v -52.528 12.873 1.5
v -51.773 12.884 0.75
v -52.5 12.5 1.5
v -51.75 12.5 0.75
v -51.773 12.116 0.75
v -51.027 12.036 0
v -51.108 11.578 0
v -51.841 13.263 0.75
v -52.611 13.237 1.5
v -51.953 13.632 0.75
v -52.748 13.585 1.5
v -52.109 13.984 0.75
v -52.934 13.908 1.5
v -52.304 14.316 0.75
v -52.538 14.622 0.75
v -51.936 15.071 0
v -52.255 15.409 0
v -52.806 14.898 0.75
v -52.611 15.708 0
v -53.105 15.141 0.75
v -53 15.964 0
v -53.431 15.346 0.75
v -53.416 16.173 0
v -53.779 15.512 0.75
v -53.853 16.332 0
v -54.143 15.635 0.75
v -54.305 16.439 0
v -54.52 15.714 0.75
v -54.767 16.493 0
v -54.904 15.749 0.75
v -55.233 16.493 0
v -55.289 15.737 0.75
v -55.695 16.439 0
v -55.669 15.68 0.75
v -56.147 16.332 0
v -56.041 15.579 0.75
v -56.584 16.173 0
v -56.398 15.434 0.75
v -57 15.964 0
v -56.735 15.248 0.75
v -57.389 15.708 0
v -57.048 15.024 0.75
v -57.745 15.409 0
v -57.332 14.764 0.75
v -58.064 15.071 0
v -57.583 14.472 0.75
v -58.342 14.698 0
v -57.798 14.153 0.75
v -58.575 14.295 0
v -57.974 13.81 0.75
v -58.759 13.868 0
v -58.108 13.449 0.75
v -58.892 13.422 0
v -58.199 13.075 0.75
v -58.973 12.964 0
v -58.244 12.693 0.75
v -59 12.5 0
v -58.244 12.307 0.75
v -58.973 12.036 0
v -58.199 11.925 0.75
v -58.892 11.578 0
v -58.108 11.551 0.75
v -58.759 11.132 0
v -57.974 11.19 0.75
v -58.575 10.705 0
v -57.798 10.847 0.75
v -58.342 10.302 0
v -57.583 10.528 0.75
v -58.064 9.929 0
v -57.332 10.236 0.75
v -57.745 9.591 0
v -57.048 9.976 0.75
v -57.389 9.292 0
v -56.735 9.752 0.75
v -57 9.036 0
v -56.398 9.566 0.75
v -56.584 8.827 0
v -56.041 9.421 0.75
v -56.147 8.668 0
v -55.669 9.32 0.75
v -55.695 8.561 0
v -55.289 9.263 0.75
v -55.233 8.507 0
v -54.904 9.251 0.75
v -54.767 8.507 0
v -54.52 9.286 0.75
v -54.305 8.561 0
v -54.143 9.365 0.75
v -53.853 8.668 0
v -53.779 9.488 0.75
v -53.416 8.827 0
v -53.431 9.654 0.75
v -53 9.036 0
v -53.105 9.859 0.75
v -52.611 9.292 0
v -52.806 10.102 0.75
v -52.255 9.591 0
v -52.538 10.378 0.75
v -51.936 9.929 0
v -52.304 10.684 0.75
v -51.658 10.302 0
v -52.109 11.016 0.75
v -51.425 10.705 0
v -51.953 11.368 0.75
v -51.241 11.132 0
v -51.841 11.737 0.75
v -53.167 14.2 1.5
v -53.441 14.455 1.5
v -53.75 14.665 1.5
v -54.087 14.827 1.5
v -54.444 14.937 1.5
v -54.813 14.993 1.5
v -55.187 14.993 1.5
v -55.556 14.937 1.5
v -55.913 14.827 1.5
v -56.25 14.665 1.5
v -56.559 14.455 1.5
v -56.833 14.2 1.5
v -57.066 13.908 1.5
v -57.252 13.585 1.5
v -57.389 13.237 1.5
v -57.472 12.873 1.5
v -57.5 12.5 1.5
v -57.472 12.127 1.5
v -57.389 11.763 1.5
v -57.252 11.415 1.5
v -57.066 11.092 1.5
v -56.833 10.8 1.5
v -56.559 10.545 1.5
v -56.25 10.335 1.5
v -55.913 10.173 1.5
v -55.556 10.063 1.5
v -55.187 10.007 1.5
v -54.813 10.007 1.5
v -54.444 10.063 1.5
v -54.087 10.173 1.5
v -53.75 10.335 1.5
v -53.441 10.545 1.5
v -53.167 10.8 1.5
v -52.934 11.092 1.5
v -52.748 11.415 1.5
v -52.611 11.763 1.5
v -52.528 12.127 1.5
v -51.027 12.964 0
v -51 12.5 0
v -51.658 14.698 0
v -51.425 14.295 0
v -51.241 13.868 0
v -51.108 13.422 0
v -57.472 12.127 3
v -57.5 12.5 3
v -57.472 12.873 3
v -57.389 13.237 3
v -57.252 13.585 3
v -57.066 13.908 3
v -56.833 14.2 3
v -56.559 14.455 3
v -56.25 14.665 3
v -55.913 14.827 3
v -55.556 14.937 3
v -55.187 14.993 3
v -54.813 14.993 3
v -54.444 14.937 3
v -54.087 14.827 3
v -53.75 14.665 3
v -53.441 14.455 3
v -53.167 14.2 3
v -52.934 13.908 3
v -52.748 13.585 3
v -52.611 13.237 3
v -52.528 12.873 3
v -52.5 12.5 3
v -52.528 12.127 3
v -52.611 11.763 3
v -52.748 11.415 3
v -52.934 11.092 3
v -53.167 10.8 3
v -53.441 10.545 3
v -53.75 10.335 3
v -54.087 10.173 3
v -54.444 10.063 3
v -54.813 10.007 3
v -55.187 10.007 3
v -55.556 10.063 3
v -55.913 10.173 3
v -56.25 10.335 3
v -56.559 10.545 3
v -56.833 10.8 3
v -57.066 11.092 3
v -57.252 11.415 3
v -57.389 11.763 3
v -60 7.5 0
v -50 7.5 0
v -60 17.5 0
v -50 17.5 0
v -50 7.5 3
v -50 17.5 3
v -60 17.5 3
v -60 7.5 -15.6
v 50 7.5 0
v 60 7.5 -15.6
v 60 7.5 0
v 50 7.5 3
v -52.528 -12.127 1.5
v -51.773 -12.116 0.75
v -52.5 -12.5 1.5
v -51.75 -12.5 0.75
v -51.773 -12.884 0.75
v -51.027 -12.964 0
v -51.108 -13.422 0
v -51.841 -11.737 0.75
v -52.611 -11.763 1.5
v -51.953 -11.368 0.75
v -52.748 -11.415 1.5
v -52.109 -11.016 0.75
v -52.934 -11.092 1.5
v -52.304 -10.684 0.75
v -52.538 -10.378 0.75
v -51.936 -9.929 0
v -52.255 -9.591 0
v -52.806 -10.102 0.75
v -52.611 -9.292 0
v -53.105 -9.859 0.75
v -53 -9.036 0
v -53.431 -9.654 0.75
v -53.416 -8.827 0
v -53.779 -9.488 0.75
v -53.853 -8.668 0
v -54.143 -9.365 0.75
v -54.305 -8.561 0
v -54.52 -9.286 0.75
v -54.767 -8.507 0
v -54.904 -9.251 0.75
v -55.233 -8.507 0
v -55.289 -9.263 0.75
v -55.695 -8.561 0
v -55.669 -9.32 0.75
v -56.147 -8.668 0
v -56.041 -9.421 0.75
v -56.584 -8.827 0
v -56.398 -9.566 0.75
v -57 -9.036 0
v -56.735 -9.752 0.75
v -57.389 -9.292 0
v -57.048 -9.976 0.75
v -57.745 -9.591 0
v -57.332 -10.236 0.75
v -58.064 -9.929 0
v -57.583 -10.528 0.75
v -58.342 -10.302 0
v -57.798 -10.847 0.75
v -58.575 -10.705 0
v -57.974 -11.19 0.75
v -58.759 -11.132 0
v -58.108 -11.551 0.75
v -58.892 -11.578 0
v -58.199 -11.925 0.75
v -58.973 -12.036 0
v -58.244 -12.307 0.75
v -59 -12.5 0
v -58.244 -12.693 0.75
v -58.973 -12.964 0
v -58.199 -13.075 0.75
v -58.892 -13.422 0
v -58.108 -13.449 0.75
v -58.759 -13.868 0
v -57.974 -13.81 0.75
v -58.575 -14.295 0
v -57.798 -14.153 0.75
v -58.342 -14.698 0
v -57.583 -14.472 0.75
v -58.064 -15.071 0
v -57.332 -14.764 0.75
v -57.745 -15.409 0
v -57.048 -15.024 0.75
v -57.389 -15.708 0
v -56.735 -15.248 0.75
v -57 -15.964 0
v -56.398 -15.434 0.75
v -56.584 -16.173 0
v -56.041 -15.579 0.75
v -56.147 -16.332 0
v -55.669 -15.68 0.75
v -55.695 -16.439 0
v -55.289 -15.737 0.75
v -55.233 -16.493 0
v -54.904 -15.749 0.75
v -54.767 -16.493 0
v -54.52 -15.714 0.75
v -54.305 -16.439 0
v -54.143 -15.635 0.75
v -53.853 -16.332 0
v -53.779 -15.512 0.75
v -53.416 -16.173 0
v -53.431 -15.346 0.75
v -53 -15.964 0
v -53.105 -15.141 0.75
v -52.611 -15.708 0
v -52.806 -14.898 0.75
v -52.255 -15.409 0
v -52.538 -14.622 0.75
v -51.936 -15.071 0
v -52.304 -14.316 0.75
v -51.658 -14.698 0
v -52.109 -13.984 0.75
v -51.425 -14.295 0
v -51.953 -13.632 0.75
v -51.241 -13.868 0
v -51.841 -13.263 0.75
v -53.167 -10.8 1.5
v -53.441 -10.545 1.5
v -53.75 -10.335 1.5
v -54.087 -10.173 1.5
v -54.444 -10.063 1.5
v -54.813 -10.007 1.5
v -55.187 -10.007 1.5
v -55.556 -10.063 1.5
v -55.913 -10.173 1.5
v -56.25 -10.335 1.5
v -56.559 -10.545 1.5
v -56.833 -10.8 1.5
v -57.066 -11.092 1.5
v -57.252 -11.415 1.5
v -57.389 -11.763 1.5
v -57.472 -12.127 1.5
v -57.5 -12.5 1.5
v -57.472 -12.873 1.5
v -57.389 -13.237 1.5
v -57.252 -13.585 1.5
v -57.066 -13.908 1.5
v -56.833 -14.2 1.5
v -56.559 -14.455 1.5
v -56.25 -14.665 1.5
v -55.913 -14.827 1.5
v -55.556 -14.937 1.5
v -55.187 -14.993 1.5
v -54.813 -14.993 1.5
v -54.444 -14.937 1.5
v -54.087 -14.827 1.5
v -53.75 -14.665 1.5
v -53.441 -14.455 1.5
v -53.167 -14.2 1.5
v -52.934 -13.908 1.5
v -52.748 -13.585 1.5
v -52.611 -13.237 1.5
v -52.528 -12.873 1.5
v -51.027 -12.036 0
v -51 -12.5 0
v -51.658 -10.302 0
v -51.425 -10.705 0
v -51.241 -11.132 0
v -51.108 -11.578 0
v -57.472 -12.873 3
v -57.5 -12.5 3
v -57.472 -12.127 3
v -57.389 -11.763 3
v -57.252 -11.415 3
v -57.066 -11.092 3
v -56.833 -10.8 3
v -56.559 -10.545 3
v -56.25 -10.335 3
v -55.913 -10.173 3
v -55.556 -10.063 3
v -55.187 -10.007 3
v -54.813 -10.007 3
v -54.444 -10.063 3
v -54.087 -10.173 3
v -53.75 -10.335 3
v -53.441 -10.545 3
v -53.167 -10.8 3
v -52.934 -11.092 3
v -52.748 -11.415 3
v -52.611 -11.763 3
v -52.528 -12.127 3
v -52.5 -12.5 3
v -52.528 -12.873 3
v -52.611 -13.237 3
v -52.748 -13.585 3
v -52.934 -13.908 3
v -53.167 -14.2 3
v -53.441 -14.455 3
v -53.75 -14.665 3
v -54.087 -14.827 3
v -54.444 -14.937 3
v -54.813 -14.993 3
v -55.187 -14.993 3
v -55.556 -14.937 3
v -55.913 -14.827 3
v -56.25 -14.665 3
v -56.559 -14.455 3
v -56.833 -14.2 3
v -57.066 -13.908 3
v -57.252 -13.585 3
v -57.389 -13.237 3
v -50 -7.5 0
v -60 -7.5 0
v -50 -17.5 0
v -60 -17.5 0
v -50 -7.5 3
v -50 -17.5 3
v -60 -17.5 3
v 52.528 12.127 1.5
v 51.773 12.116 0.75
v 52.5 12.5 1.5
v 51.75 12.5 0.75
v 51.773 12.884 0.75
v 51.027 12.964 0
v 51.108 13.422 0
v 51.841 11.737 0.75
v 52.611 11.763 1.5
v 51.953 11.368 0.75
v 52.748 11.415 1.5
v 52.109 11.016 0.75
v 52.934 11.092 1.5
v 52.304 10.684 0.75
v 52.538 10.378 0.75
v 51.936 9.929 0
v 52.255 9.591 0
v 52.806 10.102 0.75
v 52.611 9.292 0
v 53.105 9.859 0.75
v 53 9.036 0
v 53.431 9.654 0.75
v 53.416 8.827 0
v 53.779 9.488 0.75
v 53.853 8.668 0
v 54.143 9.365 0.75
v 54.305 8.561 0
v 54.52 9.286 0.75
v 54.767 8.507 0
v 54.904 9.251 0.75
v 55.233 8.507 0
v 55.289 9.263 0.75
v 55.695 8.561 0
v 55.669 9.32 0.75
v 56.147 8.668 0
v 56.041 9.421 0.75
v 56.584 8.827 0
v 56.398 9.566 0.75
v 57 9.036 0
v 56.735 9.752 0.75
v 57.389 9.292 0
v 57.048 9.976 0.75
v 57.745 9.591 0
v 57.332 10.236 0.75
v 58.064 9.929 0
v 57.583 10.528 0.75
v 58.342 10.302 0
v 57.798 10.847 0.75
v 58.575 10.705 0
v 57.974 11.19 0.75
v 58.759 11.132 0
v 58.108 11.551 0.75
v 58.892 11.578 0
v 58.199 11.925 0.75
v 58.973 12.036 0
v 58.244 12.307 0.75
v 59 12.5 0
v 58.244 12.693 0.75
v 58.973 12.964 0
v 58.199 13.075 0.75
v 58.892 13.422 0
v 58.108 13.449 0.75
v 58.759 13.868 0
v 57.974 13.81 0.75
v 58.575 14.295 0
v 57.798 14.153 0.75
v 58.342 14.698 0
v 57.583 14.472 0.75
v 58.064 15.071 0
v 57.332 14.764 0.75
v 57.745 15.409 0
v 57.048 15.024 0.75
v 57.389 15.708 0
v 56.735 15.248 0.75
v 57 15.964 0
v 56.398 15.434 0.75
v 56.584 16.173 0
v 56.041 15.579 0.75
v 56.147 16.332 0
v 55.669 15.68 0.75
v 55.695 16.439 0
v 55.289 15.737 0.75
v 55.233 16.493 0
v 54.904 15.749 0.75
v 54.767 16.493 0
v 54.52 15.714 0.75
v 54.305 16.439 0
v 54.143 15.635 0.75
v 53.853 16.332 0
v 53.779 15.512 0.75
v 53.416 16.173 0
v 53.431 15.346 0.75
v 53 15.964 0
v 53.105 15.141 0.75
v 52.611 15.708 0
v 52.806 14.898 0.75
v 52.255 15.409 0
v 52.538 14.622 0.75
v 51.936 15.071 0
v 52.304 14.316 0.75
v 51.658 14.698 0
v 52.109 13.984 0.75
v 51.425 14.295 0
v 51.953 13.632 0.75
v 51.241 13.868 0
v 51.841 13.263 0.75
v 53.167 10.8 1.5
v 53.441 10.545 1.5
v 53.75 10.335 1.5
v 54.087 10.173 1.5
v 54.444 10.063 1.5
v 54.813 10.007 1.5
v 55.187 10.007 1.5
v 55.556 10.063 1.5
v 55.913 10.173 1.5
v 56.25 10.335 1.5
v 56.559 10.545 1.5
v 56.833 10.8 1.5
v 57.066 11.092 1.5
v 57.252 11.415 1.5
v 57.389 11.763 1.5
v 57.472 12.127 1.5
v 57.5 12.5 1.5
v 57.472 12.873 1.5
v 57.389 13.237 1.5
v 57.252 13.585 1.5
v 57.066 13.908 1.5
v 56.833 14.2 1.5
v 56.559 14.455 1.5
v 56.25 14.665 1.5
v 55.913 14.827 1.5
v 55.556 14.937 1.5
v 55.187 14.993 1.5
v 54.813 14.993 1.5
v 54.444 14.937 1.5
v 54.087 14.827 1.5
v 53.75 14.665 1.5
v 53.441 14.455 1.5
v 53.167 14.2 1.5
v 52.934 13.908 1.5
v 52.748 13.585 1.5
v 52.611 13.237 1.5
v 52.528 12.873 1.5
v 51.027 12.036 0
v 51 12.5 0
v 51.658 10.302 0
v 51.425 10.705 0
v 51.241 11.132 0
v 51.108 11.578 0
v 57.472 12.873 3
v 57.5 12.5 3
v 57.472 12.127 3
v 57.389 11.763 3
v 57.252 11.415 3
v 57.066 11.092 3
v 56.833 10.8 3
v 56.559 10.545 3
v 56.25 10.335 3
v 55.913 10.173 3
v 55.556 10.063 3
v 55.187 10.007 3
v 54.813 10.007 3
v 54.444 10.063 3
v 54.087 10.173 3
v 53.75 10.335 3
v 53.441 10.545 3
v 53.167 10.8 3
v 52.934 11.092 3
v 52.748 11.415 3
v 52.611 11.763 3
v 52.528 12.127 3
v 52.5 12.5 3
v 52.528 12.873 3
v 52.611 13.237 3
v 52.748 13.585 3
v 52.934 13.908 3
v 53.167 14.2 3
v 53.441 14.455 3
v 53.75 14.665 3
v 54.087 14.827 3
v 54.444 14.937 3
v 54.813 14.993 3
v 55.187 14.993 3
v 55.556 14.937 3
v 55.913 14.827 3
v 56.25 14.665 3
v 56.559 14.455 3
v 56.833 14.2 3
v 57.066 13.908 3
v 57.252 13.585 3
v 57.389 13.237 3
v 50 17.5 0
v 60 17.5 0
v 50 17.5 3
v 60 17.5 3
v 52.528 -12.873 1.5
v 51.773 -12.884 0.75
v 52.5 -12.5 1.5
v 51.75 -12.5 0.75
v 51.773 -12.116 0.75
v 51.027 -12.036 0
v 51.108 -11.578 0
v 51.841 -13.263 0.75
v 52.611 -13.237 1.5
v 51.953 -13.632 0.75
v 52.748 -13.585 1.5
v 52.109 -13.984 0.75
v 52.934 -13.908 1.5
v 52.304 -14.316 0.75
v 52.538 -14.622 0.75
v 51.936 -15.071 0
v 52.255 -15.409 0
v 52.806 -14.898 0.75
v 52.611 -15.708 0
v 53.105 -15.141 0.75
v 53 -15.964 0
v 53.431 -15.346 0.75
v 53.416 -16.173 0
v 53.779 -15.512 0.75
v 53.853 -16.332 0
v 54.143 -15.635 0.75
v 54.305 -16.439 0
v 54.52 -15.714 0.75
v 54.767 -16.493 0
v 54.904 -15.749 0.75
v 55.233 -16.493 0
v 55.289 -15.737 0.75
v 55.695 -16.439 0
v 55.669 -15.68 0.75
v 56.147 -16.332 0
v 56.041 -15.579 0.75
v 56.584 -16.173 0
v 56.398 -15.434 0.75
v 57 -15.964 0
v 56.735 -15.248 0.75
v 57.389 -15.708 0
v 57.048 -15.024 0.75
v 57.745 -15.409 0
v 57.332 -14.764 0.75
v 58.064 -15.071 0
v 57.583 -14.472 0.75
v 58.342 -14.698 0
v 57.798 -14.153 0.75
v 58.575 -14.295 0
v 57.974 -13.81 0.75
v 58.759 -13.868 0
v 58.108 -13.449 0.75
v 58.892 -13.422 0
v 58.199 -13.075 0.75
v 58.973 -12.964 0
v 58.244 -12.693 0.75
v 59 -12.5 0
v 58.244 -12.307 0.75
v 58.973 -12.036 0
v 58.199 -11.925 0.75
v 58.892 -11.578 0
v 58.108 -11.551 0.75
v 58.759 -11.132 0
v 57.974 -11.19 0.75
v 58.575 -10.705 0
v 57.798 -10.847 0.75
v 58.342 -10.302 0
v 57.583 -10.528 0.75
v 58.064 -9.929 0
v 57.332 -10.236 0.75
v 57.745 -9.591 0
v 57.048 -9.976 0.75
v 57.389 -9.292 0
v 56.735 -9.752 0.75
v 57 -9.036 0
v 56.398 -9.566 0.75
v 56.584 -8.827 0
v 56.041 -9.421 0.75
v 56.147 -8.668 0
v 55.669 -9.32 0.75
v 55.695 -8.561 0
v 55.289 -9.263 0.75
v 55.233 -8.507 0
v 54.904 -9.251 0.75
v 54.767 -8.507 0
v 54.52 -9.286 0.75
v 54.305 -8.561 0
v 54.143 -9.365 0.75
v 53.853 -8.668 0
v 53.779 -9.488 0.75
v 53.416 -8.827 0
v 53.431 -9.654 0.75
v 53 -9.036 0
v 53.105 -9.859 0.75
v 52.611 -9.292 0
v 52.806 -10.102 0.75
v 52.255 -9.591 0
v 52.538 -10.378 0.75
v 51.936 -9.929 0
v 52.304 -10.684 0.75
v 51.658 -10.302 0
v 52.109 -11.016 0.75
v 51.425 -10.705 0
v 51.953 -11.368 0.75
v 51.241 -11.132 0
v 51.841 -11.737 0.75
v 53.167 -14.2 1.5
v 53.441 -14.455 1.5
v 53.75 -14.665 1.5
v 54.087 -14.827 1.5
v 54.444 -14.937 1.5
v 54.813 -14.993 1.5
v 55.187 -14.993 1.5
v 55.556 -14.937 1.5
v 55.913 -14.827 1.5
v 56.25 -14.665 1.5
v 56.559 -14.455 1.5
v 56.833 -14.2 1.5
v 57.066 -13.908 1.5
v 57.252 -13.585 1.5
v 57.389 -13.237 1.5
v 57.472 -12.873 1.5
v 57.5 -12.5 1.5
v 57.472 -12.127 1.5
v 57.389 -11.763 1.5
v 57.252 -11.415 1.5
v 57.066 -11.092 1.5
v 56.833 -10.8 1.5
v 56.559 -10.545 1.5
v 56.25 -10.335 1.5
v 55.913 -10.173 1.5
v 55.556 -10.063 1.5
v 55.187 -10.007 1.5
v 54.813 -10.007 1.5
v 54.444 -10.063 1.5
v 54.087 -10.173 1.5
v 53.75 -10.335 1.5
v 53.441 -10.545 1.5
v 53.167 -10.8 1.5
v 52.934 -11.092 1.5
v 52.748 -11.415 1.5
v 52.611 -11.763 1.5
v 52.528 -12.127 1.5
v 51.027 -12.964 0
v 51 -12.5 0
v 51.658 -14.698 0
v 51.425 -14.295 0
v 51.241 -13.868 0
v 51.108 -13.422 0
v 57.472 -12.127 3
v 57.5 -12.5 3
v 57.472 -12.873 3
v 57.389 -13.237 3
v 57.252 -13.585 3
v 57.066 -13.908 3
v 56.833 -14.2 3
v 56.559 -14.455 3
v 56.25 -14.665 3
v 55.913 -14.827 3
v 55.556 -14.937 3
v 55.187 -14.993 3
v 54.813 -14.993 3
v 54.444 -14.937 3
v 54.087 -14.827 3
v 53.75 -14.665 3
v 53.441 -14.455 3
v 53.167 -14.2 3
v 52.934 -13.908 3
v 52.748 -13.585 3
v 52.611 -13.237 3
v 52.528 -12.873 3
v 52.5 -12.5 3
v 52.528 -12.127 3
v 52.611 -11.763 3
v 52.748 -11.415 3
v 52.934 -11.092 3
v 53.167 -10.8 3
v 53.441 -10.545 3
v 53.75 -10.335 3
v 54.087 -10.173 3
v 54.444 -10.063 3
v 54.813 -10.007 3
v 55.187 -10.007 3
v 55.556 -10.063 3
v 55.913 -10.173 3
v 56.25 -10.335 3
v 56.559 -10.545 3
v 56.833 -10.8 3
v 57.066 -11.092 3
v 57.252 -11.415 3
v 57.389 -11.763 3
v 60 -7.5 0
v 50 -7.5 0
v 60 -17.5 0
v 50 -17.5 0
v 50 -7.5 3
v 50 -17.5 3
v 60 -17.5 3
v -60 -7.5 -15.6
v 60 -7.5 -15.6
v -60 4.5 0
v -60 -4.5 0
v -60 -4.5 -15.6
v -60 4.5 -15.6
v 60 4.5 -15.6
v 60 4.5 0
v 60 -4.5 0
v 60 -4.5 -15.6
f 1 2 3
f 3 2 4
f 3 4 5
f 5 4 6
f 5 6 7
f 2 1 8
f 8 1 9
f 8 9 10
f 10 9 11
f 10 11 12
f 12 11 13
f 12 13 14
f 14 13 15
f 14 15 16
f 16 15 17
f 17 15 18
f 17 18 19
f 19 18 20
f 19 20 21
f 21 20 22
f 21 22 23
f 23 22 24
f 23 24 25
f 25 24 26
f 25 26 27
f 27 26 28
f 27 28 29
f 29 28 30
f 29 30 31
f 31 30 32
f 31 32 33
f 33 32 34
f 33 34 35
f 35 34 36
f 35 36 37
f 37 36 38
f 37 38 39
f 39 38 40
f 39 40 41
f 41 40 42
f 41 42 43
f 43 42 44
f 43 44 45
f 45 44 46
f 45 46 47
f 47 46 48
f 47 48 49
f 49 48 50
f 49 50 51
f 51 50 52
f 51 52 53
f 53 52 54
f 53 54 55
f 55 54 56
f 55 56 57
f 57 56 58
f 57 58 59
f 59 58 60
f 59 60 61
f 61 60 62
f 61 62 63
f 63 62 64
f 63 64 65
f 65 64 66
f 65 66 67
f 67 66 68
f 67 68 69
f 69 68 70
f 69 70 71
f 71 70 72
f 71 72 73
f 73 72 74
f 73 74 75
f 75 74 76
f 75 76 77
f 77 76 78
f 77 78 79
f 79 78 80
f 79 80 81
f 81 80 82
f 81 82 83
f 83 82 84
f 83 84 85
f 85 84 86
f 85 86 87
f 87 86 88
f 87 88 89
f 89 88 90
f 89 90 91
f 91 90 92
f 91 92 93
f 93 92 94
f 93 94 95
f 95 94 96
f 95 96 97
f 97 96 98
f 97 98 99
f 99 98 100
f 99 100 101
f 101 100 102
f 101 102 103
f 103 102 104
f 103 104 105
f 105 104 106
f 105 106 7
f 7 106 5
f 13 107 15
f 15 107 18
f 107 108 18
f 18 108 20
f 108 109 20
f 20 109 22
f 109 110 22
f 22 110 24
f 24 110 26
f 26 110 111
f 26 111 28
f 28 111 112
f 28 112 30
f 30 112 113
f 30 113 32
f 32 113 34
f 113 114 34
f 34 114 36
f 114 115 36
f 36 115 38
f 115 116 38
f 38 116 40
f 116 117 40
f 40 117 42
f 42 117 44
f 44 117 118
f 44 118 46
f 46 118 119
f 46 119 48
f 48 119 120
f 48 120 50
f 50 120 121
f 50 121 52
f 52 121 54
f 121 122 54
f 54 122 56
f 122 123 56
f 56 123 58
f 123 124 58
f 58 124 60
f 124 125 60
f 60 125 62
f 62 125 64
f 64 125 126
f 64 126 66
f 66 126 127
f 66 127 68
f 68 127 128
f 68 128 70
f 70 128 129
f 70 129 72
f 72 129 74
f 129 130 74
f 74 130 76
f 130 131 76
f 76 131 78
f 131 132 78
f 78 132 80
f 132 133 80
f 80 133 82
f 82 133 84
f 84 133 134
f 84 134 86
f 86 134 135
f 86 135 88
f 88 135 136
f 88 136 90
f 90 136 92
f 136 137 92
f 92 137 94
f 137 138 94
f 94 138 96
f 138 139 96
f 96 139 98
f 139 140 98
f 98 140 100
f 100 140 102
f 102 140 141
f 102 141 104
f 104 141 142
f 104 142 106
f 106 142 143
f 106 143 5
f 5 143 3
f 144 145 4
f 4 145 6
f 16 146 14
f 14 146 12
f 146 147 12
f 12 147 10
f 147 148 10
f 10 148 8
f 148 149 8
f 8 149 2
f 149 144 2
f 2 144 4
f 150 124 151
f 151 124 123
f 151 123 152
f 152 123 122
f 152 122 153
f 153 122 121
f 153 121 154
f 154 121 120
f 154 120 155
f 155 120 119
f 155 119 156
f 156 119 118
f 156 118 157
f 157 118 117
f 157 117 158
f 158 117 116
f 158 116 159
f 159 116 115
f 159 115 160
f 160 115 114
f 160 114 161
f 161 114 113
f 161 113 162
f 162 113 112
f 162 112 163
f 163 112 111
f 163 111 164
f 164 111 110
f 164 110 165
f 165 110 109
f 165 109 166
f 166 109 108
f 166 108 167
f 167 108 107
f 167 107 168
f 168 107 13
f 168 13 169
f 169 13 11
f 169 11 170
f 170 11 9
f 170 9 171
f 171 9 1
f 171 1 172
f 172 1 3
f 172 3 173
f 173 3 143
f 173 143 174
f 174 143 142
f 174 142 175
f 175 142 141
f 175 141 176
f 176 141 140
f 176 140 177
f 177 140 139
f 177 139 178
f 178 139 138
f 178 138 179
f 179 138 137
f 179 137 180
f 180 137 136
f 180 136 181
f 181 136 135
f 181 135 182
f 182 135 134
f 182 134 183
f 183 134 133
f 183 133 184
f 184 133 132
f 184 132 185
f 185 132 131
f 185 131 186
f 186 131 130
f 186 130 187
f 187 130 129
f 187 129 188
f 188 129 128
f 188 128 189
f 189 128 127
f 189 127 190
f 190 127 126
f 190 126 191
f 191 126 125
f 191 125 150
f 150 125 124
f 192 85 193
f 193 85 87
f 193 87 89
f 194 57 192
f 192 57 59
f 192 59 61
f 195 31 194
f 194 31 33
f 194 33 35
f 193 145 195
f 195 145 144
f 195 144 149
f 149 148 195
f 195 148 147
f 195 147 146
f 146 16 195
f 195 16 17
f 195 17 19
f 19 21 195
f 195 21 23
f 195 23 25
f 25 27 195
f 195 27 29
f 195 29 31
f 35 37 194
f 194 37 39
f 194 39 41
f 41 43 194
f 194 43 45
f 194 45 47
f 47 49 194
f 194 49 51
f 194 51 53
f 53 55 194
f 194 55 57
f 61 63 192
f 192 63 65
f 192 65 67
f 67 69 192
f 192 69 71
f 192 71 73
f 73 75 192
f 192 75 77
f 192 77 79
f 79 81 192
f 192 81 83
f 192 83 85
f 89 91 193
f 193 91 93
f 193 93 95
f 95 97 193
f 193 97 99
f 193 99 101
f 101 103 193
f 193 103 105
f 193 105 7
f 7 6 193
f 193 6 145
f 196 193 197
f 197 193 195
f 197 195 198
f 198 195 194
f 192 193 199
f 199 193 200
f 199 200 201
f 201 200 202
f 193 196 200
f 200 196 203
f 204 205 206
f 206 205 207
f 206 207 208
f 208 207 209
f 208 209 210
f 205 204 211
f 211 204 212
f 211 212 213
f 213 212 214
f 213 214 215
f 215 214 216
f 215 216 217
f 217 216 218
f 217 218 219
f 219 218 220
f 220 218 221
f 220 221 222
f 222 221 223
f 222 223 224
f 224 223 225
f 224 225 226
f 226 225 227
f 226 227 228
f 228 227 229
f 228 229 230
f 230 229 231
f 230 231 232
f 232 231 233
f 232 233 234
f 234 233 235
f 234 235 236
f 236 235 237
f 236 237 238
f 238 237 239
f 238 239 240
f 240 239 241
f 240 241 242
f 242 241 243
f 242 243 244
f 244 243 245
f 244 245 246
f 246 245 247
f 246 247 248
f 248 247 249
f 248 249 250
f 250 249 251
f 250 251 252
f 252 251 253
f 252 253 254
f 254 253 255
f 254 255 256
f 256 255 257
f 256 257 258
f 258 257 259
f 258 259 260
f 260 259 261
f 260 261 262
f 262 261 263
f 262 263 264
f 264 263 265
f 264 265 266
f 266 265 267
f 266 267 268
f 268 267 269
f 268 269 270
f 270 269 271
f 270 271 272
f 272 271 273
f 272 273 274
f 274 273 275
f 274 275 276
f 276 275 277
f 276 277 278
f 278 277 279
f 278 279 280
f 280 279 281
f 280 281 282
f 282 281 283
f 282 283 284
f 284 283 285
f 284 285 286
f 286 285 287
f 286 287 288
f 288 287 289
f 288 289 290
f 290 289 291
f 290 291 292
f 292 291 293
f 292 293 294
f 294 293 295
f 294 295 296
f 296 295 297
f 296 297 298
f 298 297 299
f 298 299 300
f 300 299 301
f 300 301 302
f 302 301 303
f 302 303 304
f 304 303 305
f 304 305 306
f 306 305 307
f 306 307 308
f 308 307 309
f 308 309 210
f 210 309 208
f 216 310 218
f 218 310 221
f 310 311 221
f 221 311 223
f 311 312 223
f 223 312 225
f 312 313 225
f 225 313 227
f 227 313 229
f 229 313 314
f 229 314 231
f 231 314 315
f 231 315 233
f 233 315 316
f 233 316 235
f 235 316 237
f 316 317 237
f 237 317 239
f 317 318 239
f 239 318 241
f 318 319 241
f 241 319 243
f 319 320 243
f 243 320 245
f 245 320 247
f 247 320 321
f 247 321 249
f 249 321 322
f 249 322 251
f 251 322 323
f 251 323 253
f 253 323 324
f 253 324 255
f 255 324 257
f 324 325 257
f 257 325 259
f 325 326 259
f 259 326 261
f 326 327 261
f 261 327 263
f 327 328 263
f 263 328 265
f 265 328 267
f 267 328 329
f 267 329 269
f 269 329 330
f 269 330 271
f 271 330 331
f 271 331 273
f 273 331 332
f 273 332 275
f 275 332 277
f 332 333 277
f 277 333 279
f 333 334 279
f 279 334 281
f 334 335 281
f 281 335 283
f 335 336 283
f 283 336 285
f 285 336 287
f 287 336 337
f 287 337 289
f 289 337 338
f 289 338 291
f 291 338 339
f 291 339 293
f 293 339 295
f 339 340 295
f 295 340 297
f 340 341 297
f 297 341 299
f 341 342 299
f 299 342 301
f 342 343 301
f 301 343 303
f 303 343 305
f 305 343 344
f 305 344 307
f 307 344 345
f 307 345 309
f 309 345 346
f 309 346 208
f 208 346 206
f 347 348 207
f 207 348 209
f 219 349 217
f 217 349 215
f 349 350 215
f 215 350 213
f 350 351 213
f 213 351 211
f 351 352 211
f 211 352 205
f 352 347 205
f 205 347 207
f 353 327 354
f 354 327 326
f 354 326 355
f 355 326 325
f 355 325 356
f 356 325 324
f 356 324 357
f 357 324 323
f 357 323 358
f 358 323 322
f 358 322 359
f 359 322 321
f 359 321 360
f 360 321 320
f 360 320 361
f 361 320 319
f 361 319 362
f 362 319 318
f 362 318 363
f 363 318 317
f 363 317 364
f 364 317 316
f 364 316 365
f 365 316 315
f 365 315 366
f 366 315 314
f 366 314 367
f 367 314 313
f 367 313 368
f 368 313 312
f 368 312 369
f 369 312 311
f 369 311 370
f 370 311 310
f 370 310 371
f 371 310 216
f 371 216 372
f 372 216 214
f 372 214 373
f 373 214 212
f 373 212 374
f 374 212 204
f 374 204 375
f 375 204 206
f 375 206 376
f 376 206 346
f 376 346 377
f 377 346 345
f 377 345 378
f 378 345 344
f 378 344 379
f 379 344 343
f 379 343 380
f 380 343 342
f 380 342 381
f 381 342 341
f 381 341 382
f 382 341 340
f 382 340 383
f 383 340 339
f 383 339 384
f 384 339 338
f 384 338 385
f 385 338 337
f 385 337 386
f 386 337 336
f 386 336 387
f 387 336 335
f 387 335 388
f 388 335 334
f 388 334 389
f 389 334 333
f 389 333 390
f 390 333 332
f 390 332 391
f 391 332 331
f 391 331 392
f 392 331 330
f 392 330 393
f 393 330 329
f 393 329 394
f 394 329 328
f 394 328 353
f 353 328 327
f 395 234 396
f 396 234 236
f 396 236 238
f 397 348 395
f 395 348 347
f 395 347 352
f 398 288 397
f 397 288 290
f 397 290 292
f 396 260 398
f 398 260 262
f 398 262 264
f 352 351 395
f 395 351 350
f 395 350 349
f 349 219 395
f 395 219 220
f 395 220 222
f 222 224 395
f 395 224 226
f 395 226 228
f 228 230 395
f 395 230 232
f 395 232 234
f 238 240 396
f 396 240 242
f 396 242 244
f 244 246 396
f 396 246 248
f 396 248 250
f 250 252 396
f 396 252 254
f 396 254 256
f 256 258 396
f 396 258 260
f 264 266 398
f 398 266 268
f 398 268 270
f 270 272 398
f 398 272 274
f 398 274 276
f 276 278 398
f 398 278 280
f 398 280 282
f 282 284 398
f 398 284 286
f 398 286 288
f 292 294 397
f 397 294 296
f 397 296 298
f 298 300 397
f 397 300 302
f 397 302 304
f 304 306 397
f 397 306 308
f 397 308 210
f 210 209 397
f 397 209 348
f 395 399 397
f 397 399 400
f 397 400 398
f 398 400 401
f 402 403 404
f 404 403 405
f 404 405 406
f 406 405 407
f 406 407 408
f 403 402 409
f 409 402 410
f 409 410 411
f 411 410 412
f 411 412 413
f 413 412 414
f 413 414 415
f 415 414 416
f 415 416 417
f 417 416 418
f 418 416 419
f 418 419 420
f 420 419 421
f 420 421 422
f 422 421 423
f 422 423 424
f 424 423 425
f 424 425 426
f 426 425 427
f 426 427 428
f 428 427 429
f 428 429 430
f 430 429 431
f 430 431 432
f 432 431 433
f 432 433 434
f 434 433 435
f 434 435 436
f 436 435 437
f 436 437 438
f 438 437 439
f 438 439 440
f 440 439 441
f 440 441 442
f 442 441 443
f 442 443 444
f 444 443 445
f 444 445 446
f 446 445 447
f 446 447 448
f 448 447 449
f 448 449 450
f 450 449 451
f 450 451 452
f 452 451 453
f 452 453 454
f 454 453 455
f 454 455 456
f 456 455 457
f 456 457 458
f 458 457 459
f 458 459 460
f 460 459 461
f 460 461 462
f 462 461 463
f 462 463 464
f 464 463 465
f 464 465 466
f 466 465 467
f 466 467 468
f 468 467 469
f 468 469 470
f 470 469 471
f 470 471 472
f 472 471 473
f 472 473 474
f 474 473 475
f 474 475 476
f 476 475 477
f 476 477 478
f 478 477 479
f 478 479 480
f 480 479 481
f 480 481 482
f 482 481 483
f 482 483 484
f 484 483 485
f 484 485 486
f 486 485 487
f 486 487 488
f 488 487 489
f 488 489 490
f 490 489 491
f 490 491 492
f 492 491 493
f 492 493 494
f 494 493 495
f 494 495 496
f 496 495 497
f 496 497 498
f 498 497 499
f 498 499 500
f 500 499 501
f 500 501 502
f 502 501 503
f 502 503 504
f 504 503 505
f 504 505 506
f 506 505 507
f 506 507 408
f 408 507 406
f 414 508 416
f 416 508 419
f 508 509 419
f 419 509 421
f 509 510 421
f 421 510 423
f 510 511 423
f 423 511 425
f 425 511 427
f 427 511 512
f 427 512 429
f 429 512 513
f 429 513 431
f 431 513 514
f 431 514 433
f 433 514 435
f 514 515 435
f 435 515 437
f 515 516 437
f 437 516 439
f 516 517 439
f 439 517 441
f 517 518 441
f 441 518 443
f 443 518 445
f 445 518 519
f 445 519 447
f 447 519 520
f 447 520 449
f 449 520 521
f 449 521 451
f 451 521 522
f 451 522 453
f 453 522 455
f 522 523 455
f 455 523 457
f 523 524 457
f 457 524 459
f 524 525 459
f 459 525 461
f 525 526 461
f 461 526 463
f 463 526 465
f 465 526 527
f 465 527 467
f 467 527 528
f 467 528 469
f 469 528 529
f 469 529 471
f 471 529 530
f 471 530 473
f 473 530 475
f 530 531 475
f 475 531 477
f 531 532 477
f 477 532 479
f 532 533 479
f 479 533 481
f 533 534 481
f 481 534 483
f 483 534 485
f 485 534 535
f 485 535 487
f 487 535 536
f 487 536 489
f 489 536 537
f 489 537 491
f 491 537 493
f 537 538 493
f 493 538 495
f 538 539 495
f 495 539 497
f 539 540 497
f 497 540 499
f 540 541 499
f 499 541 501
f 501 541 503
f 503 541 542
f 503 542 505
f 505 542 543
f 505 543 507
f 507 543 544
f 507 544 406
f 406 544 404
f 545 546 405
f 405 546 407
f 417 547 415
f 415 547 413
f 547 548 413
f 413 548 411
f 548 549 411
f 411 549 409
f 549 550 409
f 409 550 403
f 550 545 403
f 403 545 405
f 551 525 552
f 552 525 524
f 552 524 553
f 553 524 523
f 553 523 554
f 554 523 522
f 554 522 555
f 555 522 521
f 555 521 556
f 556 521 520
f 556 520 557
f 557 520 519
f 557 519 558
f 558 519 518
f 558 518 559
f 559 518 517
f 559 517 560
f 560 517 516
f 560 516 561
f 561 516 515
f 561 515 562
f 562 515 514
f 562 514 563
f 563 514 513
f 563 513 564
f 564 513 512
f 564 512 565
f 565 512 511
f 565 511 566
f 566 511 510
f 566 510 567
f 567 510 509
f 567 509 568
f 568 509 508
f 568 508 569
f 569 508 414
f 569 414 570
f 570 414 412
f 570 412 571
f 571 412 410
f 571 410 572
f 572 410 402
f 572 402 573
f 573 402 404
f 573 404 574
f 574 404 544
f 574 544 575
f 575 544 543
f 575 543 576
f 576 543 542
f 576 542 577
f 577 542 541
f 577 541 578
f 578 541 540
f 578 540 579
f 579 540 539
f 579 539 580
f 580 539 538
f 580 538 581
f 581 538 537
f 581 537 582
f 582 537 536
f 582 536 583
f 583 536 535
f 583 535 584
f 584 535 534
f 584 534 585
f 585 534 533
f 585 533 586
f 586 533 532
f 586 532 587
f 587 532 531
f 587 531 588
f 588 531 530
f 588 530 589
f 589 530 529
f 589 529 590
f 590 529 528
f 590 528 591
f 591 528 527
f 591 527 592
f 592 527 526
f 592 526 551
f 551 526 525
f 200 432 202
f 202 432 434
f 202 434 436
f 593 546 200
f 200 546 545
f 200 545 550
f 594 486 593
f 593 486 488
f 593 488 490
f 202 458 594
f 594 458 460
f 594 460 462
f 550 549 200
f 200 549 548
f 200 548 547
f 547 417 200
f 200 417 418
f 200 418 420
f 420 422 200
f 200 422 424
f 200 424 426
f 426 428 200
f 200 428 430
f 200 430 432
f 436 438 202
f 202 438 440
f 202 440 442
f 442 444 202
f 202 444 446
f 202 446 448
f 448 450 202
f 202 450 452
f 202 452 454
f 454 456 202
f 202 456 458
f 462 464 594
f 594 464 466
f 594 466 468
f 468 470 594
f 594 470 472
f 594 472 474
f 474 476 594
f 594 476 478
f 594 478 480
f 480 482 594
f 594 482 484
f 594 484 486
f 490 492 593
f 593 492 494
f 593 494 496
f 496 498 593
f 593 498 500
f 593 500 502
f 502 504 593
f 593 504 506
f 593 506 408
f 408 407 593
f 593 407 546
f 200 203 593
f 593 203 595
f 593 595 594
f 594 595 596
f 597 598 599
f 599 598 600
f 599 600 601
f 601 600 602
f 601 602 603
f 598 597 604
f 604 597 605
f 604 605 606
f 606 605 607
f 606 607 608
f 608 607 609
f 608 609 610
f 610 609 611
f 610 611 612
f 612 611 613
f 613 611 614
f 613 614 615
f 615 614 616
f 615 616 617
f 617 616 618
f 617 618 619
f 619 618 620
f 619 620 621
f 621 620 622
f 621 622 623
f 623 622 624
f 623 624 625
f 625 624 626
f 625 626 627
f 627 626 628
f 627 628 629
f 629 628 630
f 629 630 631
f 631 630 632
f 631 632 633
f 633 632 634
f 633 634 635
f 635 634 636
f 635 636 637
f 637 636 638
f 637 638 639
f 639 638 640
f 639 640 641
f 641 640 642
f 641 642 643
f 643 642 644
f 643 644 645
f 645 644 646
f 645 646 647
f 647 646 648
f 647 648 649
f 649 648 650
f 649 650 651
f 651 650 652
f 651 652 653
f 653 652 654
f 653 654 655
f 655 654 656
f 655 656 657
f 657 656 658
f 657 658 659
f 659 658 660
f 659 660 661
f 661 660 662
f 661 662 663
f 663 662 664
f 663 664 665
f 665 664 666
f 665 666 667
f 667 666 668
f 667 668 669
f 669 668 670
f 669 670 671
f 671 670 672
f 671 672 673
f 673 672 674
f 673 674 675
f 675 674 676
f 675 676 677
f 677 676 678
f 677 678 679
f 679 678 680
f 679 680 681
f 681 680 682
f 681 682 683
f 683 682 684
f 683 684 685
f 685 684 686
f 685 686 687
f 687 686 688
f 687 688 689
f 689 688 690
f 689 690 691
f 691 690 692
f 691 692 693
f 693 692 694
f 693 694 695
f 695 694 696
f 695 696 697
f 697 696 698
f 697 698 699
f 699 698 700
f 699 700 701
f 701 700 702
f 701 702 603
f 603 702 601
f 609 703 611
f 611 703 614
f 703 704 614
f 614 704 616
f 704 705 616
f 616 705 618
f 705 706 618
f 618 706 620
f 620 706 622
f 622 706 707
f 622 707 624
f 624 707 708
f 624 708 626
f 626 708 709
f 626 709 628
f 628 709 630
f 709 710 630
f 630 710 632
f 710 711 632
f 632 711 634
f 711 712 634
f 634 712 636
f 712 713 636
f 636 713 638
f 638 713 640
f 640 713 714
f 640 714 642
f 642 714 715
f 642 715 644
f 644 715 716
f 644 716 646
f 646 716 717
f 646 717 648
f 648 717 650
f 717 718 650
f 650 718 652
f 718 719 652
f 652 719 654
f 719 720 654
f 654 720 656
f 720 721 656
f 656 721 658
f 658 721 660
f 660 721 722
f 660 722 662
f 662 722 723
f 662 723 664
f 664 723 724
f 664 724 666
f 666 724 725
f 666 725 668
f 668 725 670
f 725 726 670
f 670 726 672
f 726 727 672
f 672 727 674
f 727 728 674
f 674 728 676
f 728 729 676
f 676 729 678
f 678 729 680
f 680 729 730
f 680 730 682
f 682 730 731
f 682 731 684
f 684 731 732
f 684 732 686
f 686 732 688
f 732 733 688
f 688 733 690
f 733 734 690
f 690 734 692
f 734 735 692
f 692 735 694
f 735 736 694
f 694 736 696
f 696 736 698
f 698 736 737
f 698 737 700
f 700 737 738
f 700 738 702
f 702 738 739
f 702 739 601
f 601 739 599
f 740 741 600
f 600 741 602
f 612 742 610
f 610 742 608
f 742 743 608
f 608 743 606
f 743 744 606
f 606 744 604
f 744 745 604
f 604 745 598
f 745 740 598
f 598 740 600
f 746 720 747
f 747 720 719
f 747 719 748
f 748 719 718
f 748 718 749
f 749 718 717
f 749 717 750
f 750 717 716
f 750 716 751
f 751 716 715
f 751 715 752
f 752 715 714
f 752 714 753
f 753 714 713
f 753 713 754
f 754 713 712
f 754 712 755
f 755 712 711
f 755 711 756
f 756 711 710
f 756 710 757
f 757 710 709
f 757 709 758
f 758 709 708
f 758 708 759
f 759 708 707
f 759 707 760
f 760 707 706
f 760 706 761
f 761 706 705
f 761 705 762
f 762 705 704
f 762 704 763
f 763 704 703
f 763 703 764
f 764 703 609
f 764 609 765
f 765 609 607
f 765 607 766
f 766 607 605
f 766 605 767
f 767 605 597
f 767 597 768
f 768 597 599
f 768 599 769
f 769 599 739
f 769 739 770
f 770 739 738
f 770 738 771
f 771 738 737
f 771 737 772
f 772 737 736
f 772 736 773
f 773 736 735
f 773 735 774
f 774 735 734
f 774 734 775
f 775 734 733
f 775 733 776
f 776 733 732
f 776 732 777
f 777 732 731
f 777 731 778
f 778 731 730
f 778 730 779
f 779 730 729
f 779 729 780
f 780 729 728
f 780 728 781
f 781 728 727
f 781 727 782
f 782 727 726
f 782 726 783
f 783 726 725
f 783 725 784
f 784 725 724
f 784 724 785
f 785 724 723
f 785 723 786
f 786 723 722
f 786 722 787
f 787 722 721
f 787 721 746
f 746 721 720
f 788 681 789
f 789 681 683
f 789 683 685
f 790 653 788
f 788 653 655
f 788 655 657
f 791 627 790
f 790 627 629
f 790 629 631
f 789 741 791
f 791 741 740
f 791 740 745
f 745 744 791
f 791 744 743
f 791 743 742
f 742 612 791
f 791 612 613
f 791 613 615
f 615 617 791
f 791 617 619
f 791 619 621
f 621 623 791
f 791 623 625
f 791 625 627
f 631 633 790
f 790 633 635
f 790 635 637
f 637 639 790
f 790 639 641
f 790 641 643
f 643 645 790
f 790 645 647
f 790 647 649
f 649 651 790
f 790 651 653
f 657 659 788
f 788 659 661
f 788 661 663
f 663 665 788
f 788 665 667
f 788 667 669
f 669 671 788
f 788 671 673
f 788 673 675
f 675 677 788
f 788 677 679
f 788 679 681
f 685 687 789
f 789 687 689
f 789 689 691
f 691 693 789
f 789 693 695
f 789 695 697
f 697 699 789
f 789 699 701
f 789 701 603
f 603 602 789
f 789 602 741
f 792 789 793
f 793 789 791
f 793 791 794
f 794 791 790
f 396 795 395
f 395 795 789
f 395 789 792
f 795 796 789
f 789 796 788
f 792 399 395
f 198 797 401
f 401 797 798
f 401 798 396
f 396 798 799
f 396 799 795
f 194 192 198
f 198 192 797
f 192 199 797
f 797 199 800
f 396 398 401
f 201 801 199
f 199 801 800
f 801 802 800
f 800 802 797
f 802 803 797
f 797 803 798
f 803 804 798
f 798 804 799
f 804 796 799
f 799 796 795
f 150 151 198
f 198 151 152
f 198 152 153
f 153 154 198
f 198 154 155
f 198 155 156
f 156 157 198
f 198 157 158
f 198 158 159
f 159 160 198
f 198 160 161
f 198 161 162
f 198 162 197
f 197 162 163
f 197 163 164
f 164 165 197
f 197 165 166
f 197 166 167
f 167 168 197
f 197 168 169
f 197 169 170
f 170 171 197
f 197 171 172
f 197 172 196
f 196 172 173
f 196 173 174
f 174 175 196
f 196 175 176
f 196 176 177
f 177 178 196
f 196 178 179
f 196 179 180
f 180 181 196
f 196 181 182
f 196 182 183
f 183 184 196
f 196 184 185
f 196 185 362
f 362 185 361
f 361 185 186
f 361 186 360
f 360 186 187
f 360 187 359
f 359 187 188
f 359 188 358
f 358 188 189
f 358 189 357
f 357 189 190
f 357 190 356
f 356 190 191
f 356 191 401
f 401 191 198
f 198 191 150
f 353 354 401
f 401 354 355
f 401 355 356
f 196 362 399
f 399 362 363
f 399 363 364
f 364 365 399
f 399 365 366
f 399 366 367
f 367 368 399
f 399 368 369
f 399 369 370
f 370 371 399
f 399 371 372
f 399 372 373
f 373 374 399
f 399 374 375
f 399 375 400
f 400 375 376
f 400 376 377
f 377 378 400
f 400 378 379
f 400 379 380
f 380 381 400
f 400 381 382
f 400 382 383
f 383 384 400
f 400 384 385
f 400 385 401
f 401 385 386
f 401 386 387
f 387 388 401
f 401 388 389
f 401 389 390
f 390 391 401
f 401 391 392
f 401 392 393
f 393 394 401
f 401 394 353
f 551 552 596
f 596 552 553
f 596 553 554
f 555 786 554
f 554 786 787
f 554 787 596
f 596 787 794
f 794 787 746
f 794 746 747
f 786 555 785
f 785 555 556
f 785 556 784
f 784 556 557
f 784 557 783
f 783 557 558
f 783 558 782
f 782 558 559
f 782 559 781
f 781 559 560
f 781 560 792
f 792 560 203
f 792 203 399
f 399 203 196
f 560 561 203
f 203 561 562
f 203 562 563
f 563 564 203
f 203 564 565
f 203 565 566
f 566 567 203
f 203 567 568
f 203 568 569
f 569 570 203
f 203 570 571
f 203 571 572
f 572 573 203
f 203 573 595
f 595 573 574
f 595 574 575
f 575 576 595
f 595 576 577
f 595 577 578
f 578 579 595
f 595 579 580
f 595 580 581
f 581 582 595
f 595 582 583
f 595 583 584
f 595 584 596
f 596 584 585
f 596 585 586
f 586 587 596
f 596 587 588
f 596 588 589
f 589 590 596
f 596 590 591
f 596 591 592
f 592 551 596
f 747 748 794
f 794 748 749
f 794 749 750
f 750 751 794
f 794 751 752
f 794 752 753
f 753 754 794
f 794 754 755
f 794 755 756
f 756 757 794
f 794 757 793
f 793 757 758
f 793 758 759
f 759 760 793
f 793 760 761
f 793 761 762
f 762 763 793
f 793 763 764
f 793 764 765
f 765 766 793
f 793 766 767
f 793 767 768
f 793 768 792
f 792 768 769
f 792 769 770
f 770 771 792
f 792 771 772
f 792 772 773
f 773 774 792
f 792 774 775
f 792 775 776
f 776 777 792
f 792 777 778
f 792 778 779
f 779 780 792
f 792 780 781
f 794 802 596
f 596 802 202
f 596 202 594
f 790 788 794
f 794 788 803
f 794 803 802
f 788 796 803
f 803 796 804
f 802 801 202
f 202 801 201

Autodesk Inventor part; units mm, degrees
ref_plane "YZ Plane" through (0, 0, 0) normal (1, 0, 0) x (0, 1, 0)
ref_plane "XZ Plane" through (0, 0, 0) normal (0, 1, 0) x (-1, 0, 0)
ref_plane "XY Plane" through (0, 0, 0) normal (0, 0, 1) x (1, 0, 0)
sketch "Sketch1" plane through (0, 0, 0) normal (1, 0, 0) x (0, 1, 0)
  line L0 (4.5, -15.6) -> (4.5, 0)
  line L1 (4.5, 0) -> (-4.5, 0)
  line L2 (-4.5, 0) -> (-4.5, -15.6)
  line L3 (7.5, -15.6) -> (7.5, 3)
  line L4 (7.5, 3) -> (-7.5, 3)
  line L5 (-7.5, 3) -> (-7.5, -15.6)
  line L6 (-7.5, -15.6) -> (-4.5, -15.6)
  line L7 (4.5, -15.6) -> (7.5, -15.6)
  point P0 (0, 0)
  point P1 (0, 0)
  dimension "SliderWallWidth" = 3
  dimension "d18" = 9
  dimension "d19" = 15.6
extrude "Extrusion1" add sketch "Sketch1" along normal mid plane 120
sketch "Sketch2" plane through (-60, -7.5, -15.6) normal (0, -1, 0) x (1, 0, 0)
  line L0 (120, 18.6) -> (110, 18.6)
  line L1 (110, 18.6) -> (110, 15.6)
  line L2 (110, 15.6) -> (120, 15.6)
  line L3 (120, 15.6) -> (120, 18.6)
  dimension "ScrewPlateSize" = 10
  dimension "ScrewPlateHeight" = 3
extrude "Extrusion2" add sketch "Sketch2" along normal blind 10
sketch "Sketch5" plane through (60, -7.5, 0) normal (0, 0, -1) x (-1, 0, 0)
  line L0 (10, -10) -> (0, -10) construction
  line L1 (10, 0) -> (10, -10) construction
  circle A0 centre (5, -5) radius 2.5
  point P0 (60, 7.5)
  point P1 (10, -5)
  point P2 (5, -10)
  dimension "ScrewHoleDia" = 5
extrude "Extrusion4" cut sketch "Sketch5" against normal through all
chamfer "Chamfer2" distance 1.5 angle 45 1 edges at (57.5, -12.5, 0)
mirror "Mirror2" about plane through (0, 0, 0) normal (0, 1, 0) of "Extrusion4", "Chamfer2", "Extrusion2"
mirror "Mirror3" about plane through (0, 0, 0) normal (1, 0, 0) of "Extrusion4", "Chamfer2", "Extrusion2", "Mirror2"
equation "\"d18\" = RackWidth + 2 * RackOffset"
equation "\"d19\" = RackHeight"
equation "\"d3\" = RackLength"
equation "\"d9\" = ScrewPlateSize"
equation "\"RackOffset\" = 0.5"
equation "\"RackWidth\" = 8"
equation "\"RackHeight\" = 15.6"
equation "\"RackLength\" = 120"
properties part number "RackSlider"
